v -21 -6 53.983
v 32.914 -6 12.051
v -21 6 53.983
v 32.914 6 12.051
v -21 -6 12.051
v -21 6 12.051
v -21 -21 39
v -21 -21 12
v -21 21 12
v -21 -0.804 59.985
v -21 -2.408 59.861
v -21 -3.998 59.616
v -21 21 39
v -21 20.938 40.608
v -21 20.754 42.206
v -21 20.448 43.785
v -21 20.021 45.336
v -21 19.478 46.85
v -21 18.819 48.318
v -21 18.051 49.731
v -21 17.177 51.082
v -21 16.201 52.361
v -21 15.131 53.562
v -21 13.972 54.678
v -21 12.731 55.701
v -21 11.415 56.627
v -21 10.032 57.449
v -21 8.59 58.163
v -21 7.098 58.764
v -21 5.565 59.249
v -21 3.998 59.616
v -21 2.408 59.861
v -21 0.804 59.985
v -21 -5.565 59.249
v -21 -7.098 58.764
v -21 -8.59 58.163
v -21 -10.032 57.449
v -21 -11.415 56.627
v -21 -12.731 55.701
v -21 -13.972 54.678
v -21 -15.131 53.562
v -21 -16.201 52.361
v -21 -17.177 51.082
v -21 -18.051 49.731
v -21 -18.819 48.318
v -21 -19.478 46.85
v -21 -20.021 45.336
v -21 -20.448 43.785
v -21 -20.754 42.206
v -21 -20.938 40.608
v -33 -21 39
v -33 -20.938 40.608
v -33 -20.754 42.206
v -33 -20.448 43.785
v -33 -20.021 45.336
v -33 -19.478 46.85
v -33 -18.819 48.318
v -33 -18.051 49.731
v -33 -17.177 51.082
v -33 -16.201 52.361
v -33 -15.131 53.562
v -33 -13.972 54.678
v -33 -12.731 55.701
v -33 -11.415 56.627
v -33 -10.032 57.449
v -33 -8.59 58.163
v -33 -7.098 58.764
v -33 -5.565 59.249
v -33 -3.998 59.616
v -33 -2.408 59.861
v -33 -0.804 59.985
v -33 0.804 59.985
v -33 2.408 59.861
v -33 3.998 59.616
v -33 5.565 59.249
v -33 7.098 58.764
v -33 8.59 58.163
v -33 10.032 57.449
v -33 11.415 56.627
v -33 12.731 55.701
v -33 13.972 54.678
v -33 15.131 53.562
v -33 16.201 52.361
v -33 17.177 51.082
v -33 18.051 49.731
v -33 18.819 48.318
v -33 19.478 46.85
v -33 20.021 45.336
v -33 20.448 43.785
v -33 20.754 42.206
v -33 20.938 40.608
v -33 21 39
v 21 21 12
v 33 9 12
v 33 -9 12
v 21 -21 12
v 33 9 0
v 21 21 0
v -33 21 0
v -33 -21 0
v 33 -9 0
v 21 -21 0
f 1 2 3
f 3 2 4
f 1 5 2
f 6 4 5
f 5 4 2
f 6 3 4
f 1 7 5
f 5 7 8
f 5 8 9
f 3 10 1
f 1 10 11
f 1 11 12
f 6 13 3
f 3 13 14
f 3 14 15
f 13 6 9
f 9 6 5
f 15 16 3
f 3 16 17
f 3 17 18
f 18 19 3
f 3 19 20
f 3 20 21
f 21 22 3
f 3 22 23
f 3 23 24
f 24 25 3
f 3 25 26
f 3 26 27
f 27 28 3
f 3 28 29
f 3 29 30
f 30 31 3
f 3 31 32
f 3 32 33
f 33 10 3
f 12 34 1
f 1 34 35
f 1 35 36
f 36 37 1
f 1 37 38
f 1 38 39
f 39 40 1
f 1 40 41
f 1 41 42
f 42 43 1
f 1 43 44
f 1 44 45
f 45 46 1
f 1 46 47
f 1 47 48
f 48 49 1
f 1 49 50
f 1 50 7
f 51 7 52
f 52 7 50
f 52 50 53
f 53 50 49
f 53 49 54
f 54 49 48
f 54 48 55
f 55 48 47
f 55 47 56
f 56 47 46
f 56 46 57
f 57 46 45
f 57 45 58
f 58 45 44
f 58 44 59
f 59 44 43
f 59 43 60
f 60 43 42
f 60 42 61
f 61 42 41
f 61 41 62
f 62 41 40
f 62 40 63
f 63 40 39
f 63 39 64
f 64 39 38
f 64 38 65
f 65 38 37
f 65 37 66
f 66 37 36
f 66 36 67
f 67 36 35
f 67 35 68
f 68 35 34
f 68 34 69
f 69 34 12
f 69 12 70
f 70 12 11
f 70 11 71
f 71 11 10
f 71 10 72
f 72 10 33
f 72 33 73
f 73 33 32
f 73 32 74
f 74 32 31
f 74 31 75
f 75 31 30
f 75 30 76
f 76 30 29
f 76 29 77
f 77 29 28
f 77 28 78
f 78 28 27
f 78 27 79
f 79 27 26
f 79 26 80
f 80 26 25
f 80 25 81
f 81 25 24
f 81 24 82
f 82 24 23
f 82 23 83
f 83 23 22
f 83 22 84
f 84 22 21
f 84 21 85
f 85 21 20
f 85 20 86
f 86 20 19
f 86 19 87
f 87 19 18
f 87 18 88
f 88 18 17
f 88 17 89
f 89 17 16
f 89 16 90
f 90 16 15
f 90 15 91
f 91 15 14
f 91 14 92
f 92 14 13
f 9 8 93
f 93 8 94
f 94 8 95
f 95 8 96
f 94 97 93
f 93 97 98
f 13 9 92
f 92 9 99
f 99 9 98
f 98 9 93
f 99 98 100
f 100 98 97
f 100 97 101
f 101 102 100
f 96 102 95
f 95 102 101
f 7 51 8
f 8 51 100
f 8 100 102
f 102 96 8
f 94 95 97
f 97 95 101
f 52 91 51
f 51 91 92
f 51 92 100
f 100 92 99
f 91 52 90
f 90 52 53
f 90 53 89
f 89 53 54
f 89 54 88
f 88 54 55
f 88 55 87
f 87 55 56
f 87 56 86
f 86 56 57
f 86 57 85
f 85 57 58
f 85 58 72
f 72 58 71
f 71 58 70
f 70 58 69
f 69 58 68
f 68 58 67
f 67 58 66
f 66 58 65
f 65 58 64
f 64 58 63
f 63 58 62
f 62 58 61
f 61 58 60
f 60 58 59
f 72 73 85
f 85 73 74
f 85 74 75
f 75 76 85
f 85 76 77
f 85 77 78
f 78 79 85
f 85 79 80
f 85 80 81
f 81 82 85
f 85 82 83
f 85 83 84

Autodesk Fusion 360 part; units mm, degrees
sketch "Sketch1" plane through (0, 0, 0) normal (0, 0, 1) x (1, 0, 0)
  line L0 (33, -21) -> (-33, -21)
  line L1 (-33, -21) -> (-33, 21)
  line L2 (-33, 21) -> (33, 21)
  line L3 (33, 21) -> (33, -21)
  line L4 (33, -21) -> (-33, 21) construction
  line L5 (-33, -21) -> (33, 21) construction
  dimension "d1" = 66
  dimension "d2" = 42
extrude "Extrude1" add sketch "Sketch1" along normal blind 12
chamfer "Chamfer1" distance 12 angle 45 2 edges at (33, -21, 6) (33, 21, 6)
sketch "Sketch2" plane through (0, 0, 12) normal (0, 0, 1) x (-1, 0, 0)
  line L0 (-33, -9) -> (-21, -21)
  line L1 (-21, -21) -> (33, -21)
  line L2 (33, -21) -> (33, 21)
  line L3 (33, 21) -> (-21, 21)
  line L4 (-21, 21) -> (-33, 9)
  line L5 (-33, 9) -> (-33, -9)
  line L6 (33, -21) -> (21, -21)
  line L7 (21, -21) -> (21, 21)
  line L8 (21, 21) -> (33, 21)
  line L9 (33, 21) -> (33, -21)
  dimension "d6" = 12
extrude "Extrude2" add sketch "Sketch2" along normal blind 48 contours L1 L2 L3 L6 L7 L8 L9
fillet "Fillet1" radius 21 2 edges at (-27, -21, 60) (-27, 21, 60)
sketch "Sketch3" plane through (0, 0, 0) normal (0, 1, 0) x (1, 0, 0)
  line L0 (-21.0863, -54.0506) -> (-21.0863, -12.0506)
  line L1 (-21.0863, -12.0506) -> (32.9137, -12.0506)
  line L2 (32.9137, -12.0506) -> (-21.0863, -54.0506)
  dimension "d11" = 42
  dimension "d12" = 54
extrude "Extrude3" add sketch "Sketch3" along normal mid plane 12
equation "d7 = 60 mm - 12 mm"
equation "d12 = 66 mm - 12 mm"
